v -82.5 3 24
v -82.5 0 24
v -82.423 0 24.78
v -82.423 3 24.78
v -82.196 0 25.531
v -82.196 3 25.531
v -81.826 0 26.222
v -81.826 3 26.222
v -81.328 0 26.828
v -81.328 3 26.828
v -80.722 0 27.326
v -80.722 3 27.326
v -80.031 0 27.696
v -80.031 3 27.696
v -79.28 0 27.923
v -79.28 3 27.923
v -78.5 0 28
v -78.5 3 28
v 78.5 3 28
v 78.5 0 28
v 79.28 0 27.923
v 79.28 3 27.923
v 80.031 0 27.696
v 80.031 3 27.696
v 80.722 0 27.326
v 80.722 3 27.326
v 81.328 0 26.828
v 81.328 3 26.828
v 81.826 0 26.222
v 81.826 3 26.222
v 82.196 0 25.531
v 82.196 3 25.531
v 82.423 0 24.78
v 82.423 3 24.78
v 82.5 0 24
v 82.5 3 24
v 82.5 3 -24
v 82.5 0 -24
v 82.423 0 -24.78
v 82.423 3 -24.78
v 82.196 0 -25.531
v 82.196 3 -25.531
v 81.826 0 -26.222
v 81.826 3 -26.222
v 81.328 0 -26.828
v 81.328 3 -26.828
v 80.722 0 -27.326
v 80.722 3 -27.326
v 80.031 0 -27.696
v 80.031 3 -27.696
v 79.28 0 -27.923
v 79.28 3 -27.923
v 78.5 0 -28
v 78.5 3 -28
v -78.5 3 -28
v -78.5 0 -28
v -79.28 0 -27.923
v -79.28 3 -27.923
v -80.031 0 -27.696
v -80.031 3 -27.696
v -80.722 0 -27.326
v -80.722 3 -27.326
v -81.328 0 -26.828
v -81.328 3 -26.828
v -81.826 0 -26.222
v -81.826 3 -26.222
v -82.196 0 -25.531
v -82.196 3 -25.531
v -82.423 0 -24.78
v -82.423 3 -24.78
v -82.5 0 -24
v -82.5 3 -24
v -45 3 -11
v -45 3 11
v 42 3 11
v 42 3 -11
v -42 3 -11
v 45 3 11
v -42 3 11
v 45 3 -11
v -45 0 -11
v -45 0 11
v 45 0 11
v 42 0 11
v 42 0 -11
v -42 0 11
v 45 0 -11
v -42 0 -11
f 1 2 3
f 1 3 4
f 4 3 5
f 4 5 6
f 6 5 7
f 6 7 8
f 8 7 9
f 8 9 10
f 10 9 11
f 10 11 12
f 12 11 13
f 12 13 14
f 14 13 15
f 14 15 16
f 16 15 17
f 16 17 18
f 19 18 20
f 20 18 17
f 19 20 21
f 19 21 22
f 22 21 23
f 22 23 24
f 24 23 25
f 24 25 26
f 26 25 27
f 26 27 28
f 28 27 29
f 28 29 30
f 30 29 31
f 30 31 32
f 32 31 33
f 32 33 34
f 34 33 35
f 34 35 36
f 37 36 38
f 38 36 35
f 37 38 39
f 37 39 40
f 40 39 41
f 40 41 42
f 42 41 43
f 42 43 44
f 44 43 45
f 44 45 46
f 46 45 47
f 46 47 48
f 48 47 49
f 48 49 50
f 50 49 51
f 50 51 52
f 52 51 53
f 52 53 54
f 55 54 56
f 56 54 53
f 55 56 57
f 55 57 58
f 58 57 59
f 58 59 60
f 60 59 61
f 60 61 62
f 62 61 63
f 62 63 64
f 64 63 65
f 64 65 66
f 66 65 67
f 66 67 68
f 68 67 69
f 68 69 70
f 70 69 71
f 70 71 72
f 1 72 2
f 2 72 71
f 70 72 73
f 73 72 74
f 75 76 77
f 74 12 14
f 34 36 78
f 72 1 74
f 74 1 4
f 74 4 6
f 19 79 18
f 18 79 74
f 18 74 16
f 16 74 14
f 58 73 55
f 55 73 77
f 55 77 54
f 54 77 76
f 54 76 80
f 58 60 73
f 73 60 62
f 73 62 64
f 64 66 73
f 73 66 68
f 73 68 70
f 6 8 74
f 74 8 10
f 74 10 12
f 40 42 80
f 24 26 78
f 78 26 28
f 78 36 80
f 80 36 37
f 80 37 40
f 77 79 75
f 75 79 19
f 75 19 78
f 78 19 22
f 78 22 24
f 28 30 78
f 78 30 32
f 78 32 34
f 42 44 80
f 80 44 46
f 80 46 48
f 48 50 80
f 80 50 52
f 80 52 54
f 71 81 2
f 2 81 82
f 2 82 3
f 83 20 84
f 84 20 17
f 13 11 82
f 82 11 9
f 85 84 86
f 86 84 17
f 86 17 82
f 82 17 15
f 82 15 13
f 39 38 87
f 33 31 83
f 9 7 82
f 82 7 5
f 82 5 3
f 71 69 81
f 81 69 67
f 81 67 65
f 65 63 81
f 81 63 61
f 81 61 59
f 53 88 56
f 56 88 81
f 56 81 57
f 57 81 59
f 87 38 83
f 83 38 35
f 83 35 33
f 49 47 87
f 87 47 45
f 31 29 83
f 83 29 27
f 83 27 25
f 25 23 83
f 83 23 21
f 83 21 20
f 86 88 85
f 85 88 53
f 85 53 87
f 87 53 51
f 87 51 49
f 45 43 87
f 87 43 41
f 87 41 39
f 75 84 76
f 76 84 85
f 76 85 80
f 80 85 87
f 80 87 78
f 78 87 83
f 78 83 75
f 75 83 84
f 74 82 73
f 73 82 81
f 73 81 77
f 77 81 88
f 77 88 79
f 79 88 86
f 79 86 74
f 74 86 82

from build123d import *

# Parameters (mm, degrees)
BOSS_EXTRUDE1_DEPTH     = 3
CUT_EXTRUDE1_DEPTH      = 88.17367722
CUT_EXTRUDE1_DEPTH_BACK = 88.17367722
SKETCH2_W               = 3
SKETCH2_H               = 22


with BuildPart() as part:
    # Sketch1 → Boss-Extrude1 (new body)
    with BuildSketch(Plane(origin=(0, 0, 0), x_dir=(1, 0, 0), z_dir=(0, 1, 0))):
        with BuildLine():
            Line((-78.5, -28), (78.5, -28))
            ThreePointArc((78.5, -28), (81.328427125, -26.828427125), (82.5, -24))
            Line((82.5, -24), (82.5, 24))
            ThreePointArc((82.5, 24), (81.328427125, 26.828427125), (78.5, 28))
            Line((78.5, 28), (-78.5, 28))
            ThreePointArc((-78.5, 28), (-81.328427125, 26.828427125), (-82.5, 24))
            Line((-82.5, 24), (-82.5, -24))
            ThreePointArc((-82.5, -24), (-81.328427125, -26.828427125), (-78.5, -28))
        make_face()
    extrude(amount=BOSS_EXTRUDE1_DEPTH)

    # Sketch2 → Cut-Extrude1 (cut, two sides: drawn at the far end of the back side and taken through both)
    with BuildSketch(Plane(origin=(0, 0, 0), x_dir=(1, 0, 0), z_dir=(0, 1, 0)).offset(-CUT_EXTRUDE1_DEPTH_BACK)):
        with Locations((-43.5, 0)):
            Rectangle(SKETCH2_W, SKETCH2_H)
        with Locations((43.5, 0)):
            Rectangle(SKETCH2_W, SKETCH2_H)
    extrude(amount=CUT_EXTRUDE1_DEPTH + CUT_EXTRUDE1_DEPTH_BACK, mode=Mode.SUBTRACT)


solid = part.part
